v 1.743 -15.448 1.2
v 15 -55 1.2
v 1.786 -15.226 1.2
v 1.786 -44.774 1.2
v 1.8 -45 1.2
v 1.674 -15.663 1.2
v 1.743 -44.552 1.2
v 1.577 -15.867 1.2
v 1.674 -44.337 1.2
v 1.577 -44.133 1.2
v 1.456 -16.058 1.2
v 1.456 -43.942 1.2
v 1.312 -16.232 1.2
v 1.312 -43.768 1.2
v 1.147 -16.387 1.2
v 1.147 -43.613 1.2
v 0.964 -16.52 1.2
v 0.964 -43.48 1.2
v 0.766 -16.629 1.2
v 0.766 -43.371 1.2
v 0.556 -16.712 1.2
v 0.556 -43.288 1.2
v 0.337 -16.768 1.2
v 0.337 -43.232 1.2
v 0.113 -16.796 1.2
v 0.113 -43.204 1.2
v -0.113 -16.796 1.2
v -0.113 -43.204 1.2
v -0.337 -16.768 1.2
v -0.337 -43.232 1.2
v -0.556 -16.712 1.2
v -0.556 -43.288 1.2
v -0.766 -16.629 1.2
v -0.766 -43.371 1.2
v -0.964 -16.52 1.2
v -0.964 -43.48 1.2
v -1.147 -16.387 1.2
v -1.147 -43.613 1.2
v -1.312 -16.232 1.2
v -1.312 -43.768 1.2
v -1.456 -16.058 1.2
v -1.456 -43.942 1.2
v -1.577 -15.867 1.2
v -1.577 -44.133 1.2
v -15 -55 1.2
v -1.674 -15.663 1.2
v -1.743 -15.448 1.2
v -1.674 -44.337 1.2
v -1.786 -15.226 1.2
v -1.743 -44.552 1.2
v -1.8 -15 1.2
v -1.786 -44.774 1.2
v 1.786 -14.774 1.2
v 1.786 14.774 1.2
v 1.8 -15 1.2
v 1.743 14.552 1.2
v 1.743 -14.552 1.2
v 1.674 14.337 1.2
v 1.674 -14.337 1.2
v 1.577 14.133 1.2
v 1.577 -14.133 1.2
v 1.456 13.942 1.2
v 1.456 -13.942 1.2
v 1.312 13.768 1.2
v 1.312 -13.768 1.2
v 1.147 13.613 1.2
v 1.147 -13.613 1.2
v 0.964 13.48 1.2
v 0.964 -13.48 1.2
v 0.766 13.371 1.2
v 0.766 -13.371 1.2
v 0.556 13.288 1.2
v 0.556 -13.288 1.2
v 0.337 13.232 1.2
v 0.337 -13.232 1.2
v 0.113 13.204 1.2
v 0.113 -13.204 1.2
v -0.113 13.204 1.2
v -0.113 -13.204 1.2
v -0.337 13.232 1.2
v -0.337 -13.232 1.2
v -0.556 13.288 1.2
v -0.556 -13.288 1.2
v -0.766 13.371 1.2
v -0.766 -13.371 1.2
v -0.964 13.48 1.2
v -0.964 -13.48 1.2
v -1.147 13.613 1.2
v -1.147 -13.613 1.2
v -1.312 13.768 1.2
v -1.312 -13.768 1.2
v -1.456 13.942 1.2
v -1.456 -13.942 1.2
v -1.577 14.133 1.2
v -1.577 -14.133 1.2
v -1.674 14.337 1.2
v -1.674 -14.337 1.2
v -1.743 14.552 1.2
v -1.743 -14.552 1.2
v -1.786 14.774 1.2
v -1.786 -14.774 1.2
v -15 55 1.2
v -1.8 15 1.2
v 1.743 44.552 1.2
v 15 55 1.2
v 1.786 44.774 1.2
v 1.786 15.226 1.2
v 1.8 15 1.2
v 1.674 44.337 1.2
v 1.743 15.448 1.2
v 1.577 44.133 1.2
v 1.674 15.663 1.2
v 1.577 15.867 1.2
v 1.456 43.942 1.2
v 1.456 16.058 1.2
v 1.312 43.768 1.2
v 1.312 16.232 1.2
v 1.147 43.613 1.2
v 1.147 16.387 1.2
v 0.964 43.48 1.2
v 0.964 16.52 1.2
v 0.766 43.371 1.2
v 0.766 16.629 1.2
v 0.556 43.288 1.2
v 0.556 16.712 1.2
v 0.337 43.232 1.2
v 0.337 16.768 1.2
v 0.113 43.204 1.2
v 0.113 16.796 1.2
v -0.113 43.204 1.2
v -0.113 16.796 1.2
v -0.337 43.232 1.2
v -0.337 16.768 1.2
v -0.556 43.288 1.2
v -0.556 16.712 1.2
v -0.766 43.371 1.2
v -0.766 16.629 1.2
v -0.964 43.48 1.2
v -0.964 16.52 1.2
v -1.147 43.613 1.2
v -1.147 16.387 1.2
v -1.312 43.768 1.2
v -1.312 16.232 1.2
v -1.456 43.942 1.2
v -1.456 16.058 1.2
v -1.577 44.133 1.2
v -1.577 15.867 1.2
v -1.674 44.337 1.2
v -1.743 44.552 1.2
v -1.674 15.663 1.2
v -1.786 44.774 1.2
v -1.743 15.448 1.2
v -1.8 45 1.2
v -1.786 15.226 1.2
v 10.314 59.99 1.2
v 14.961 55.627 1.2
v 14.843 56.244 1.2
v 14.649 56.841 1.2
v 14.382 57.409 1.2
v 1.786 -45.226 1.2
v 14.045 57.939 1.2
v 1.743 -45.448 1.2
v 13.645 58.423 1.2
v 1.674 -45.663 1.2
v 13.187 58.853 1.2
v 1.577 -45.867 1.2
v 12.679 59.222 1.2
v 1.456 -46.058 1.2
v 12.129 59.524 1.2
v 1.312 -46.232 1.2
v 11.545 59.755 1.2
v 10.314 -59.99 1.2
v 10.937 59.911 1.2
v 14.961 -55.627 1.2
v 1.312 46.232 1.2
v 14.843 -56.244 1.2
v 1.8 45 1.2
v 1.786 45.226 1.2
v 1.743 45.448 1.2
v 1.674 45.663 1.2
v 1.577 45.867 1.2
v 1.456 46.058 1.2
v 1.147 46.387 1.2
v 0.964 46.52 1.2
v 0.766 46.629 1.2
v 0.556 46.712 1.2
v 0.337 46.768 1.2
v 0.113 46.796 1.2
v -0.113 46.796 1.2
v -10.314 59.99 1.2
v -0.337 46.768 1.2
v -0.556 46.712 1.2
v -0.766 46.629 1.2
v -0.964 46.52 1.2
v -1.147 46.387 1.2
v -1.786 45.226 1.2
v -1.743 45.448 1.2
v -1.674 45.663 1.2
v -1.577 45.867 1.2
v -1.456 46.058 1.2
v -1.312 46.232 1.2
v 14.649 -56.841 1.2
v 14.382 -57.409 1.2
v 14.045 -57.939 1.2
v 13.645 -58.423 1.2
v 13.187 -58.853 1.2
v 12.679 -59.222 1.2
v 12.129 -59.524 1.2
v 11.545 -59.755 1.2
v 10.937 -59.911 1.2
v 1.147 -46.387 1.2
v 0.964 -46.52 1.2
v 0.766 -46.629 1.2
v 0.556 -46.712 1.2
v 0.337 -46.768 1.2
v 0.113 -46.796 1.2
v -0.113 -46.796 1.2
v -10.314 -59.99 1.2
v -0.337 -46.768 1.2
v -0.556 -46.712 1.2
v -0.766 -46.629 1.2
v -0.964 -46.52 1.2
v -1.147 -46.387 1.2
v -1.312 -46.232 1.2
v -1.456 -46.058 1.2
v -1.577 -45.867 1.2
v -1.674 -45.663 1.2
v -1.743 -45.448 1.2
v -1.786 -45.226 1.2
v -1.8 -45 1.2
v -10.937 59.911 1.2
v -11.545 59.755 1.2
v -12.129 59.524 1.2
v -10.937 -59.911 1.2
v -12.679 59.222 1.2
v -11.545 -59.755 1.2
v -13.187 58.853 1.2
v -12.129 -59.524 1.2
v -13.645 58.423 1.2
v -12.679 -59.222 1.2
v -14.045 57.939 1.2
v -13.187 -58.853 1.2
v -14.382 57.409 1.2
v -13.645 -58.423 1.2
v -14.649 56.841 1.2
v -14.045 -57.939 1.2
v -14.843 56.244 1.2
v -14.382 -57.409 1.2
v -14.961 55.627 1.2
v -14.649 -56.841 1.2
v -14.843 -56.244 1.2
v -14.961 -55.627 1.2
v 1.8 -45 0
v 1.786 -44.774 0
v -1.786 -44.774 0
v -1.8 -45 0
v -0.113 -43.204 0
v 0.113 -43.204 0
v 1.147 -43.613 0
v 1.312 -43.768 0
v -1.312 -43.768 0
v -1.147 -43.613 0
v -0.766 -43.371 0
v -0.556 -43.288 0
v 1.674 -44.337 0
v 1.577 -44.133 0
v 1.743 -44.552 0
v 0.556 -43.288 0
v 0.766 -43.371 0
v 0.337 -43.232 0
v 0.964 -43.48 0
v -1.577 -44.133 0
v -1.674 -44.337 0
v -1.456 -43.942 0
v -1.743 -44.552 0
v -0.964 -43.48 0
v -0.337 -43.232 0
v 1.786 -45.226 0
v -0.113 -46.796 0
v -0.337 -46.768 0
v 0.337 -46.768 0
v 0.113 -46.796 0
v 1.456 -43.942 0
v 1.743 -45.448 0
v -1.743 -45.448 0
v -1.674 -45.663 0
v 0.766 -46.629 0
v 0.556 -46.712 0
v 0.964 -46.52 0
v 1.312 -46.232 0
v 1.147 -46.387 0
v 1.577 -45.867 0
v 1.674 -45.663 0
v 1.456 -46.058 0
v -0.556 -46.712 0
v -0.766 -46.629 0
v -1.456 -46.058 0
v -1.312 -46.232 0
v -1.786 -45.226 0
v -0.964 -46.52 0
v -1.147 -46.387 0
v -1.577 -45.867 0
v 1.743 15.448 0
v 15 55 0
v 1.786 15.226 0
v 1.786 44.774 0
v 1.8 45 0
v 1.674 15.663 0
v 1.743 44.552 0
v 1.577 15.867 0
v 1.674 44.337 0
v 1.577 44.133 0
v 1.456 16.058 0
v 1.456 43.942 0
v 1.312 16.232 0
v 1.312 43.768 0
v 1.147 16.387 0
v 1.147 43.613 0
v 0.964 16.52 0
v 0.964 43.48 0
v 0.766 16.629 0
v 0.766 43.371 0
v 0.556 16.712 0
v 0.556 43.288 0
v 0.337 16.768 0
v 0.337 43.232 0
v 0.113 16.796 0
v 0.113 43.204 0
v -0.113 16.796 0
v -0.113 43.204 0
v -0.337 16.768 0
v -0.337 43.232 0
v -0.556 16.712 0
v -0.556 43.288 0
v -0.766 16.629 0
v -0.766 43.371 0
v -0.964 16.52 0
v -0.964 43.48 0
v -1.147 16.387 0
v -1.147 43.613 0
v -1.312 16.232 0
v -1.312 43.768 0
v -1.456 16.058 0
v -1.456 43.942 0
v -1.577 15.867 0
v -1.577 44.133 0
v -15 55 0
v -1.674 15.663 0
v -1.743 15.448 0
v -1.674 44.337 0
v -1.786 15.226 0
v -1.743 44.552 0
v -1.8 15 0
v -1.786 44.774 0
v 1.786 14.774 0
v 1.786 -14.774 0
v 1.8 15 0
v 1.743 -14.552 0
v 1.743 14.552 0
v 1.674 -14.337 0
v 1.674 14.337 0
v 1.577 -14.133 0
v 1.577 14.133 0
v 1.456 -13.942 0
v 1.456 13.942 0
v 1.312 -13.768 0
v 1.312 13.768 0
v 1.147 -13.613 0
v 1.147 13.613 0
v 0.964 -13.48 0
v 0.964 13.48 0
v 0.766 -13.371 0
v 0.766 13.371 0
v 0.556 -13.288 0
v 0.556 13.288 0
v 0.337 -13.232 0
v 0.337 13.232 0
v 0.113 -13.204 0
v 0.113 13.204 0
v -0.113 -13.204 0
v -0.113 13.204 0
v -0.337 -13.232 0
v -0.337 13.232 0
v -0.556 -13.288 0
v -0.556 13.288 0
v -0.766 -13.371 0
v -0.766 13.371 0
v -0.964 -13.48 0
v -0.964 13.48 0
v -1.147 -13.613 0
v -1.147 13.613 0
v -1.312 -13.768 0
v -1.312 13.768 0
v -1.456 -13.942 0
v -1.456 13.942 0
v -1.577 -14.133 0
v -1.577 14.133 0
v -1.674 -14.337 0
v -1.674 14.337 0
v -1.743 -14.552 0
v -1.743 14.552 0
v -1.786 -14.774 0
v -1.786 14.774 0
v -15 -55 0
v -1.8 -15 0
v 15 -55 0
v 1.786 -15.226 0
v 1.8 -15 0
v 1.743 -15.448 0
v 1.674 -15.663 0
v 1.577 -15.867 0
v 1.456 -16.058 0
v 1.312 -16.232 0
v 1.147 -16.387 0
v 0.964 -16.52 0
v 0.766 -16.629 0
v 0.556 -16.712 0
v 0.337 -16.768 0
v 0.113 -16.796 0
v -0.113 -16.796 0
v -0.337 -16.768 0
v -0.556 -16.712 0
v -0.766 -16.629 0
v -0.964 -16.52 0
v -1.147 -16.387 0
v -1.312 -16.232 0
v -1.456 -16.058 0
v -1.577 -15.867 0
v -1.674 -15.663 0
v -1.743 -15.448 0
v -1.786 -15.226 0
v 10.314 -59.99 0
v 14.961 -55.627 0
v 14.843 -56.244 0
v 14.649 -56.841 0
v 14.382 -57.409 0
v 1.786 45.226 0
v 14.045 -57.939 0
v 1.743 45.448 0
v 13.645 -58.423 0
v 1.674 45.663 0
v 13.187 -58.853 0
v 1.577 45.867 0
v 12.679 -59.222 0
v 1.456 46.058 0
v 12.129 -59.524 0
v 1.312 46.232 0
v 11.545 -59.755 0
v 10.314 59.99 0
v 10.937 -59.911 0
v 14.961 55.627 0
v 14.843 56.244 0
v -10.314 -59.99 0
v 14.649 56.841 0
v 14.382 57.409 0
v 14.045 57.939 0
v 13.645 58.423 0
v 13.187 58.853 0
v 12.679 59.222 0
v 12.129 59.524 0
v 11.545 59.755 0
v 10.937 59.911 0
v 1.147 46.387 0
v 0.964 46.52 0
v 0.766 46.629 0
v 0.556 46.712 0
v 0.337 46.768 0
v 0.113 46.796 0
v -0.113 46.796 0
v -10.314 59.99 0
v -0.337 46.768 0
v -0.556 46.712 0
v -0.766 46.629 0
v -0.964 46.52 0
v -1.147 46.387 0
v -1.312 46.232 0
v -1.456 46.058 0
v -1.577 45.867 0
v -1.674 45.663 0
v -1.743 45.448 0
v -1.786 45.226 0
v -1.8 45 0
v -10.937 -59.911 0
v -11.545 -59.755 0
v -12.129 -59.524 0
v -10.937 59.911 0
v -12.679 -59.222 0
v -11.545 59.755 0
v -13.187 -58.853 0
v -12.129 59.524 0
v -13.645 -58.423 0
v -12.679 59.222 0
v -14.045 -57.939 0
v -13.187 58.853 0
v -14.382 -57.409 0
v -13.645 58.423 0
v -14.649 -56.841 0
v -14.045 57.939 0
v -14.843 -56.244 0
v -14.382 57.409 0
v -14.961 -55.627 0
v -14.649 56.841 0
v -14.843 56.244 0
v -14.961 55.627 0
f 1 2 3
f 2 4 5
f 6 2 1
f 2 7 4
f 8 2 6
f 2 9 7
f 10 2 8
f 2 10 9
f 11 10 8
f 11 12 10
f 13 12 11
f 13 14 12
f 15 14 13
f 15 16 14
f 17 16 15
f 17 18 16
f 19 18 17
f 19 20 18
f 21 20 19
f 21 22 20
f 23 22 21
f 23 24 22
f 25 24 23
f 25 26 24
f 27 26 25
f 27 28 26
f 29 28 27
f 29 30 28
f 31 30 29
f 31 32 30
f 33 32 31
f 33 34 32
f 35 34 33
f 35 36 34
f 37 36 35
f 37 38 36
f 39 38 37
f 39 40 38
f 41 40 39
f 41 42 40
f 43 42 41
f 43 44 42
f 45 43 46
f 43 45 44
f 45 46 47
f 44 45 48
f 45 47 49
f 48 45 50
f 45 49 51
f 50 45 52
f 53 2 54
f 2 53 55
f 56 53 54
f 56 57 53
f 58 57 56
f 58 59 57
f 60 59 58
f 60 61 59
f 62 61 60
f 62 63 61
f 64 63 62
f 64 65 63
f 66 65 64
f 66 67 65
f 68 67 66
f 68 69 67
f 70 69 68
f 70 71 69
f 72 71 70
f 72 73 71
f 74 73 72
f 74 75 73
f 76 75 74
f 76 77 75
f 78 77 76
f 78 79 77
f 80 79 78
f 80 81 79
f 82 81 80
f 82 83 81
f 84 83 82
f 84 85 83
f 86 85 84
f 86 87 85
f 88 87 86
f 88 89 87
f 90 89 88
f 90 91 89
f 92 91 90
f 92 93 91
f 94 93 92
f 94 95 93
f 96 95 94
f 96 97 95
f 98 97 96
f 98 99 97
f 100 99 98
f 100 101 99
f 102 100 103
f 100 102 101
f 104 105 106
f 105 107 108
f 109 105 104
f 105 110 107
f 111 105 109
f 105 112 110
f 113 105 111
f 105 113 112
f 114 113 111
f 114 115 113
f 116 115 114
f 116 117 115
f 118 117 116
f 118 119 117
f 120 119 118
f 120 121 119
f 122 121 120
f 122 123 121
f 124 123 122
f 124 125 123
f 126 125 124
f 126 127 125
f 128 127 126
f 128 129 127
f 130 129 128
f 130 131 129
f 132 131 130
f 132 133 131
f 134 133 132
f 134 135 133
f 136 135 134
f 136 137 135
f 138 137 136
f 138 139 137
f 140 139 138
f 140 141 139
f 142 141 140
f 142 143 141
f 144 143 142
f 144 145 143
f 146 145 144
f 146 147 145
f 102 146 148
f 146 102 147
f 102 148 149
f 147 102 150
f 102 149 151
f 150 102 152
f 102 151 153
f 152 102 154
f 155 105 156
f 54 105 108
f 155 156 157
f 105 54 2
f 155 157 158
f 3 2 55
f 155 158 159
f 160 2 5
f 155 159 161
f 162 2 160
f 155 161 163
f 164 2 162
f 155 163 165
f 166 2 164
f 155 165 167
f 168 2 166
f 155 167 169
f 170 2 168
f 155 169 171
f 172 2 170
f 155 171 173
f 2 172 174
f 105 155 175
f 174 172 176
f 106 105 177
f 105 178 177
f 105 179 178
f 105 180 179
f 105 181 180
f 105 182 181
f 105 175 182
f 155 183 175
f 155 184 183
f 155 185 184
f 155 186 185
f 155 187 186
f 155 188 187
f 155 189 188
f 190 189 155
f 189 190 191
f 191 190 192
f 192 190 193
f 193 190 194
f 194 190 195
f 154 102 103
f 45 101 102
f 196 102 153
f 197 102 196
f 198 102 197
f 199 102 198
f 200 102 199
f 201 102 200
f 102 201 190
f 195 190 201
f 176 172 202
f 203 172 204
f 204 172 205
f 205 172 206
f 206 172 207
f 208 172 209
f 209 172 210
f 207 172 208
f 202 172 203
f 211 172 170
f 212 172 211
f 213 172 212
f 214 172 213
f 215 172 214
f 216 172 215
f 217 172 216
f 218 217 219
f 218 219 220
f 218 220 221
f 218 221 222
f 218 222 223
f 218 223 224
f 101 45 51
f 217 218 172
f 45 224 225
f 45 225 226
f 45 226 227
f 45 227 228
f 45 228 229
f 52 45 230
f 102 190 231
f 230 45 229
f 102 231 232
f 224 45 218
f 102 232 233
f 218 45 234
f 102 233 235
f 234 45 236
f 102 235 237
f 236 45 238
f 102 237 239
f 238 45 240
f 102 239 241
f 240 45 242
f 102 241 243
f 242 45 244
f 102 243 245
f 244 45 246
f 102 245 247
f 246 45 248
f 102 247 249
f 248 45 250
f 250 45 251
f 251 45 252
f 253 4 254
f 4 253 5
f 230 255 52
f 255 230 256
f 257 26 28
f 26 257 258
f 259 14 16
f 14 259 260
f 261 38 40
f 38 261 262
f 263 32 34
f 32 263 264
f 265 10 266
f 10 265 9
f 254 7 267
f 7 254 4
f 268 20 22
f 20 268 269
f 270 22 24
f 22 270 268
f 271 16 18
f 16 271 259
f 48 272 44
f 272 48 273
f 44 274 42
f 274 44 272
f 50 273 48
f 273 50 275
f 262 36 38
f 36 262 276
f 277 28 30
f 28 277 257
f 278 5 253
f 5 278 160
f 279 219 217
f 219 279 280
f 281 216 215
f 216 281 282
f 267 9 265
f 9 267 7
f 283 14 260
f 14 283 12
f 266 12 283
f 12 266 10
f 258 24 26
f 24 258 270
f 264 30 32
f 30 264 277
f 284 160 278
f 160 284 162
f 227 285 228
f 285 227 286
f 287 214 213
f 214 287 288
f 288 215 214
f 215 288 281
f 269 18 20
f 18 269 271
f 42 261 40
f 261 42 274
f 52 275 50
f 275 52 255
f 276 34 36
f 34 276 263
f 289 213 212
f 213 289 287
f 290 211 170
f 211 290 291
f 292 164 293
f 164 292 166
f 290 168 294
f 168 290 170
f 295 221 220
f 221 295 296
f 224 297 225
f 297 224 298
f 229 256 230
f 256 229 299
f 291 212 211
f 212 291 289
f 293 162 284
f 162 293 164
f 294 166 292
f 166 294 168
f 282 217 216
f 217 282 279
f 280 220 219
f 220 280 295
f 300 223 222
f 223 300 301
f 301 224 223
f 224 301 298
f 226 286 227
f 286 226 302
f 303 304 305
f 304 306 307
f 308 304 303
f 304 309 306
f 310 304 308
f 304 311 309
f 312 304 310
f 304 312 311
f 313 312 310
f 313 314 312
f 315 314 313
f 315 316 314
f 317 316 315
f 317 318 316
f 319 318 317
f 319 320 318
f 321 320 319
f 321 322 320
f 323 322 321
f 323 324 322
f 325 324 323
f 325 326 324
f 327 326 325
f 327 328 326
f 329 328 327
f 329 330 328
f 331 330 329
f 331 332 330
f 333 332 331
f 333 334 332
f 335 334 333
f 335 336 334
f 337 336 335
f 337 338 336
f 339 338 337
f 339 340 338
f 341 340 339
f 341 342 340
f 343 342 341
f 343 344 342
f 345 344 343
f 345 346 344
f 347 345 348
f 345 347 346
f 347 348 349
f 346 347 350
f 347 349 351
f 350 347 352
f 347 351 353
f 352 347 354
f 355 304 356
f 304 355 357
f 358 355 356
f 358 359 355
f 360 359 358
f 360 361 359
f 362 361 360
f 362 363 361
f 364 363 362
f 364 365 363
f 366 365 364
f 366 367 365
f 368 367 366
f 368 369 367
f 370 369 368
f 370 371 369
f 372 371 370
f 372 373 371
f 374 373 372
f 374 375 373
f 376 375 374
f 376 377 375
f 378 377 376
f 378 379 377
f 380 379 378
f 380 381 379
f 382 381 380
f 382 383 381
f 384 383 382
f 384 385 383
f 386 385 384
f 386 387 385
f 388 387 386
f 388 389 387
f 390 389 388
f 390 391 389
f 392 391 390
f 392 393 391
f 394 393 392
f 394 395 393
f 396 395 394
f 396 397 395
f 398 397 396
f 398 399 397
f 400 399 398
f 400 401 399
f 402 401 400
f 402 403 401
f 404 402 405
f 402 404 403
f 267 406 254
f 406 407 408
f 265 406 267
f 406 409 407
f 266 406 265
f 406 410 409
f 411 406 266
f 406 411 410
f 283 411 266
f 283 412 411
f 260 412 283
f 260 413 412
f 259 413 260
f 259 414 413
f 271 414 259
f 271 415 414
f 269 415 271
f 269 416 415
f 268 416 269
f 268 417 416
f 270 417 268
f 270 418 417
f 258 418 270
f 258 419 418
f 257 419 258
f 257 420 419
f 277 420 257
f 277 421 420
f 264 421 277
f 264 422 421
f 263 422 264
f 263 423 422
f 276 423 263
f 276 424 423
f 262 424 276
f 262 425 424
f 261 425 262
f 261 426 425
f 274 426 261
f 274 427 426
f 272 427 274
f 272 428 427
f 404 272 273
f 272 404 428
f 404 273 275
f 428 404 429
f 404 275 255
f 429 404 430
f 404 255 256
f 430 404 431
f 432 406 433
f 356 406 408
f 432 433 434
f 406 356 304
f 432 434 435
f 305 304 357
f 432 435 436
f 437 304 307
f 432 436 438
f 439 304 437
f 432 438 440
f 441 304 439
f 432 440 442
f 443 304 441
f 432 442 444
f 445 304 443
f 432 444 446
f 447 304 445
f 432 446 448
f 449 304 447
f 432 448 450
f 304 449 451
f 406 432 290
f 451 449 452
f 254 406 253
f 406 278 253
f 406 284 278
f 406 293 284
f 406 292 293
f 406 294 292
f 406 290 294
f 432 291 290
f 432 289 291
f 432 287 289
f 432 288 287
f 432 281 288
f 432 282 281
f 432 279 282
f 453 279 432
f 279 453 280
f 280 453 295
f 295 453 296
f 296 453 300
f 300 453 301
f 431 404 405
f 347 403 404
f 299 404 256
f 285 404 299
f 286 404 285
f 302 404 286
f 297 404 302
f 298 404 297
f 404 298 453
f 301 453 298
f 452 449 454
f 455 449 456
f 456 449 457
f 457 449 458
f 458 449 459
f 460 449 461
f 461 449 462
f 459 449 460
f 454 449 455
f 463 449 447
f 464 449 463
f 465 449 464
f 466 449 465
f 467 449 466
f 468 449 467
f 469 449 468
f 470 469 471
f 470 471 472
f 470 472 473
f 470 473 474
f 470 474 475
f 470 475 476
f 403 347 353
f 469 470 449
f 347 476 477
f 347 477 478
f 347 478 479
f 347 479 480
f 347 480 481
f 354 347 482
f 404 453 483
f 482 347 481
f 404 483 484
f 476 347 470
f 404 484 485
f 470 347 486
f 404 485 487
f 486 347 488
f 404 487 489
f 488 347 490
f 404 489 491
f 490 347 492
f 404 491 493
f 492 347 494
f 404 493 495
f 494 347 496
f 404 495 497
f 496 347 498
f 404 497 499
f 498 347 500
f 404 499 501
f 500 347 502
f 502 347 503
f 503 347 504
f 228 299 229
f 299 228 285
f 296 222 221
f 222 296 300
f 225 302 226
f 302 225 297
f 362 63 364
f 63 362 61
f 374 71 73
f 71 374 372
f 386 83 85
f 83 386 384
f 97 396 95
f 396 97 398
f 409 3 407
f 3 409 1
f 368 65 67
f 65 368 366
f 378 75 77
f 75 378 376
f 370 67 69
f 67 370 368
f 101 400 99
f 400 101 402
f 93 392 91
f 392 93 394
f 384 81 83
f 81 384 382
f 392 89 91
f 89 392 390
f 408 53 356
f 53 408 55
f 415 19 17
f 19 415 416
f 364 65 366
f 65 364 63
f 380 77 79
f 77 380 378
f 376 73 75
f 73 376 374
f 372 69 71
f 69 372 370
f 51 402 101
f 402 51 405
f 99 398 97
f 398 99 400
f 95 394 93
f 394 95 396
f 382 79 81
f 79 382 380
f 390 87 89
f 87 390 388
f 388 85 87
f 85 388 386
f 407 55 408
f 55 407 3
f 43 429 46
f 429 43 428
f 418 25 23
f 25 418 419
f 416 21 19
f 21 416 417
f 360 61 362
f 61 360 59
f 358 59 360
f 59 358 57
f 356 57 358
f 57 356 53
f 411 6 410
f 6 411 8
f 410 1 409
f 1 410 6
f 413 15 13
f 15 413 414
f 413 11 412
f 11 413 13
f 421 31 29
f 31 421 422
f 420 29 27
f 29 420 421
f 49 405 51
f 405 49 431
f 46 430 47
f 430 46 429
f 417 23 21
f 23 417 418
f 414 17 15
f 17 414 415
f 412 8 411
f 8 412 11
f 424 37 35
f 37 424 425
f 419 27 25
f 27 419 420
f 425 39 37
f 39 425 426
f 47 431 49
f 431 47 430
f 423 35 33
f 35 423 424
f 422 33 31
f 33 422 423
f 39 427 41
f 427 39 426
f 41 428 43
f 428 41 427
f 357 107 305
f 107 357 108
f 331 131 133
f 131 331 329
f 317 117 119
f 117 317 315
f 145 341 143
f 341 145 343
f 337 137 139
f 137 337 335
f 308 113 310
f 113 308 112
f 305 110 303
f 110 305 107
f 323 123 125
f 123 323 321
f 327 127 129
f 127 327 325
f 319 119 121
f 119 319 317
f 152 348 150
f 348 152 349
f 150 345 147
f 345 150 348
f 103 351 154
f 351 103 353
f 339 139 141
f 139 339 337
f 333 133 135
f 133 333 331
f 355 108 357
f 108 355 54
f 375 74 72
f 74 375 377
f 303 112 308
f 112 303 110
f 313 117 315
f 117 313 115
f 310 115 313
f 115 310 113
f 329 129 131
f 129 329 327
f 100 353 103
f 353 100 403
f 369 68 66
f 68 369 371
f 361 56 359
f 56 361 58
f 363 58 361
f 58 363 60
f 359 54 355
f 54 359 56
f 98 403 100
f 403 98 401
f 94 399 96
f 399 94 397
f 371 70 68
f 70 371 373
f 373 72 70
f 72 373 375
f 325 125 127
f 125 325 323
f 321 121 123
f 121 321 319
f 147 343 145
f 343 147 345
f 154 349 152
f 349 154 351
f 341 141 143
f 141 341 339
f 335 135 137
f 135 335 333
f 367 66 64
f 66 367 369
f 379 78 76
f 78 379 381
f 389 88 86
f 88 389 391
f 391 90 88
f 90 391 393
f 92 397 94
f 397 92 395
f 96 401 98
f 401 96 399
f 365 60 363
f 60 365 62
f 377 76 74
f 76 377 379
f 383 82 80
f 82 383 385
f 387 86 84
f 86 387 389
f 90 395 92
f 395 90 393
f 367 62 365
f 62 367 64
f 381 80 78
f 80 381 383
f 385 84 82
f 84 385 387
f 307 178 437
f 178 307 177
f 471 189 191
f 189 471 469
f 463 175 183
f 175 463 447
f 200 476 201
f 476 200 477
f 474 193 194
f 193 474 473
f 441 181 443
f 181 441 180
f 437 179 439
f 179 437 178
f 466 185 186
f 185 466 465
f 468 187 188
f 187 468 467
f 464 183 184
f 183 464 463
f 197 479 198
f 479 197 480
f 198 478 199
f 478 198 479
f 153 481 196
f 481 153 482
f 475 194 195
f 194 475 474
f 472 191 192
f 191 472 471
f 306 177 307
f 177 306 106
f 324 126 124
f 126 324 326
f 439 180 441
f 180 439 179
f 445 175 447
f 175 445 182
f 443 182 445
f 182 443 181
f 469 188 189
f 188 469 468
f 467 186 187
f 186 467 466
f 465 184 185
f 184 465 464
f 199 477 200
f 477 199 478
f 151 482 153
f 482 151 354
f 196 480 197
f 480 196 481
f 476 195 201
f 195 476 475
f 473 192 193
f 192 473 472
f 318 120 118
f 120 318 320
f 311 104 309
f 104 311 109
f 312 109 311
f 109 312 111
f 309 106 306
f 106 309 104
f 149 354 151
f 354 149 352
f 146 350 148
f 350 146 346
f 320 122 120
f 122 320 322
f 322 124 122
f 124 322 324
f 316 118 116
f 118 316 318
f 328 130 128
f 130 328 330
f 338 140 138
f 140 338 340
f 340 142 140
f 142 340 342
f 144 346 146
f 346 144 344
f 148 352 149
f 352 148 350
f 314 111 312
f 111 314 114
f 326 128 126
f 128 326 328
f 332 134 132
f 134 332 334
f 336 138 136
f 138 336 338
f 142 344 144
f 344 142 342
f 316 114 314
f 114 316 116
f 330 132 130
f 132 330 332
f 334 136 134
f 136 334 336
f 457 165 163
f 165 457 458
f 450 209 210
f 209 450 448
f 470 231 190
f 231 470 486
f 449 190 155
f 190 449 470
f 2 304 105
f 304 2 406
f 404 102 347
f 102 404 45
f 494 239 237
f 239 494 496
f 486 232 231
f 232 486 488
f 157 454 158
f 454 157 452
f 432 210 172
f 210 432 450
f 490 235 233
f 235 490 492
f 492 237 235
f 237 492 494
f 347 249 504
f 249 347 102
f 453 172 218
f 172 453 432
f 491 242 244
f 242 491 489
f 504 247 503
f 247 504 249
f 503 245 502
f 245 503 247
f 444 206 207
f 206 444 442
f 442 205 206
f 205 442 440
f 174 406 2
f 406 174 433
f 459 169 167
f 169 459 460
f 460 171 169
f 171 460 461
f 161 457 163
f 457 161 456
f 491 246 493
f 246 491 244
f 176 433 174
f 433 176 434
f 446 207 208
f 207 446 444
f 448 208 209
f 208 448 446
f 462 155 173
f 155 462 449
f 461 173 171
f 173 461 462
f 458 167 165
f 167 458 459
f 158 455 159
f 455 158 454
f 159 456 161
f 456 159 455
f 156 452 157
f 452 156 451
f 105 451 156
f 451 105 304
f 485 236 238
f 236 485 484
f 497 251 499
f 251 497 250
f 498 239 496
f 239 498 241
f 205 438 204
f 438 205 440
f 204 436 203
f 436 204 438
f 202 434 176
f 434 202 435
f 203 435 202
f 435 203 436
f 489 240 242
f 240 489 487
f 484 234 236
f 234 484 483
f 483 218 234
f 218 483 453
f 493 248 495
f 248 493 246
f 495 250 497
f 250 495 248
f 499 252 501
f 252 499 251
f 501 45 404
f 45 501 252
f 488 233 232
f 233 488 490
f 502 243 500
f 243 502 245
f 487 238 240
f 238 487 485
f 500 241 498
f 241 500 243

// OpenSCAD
$fn = 50;


difference() {
	union() {
		hull() {
			translate(v = [-10.0000000000, 55.0000000000, 0]) {
				cylinder(h = 12, r = 5);
			}
			translate(v = [10.0000000000, 55.0000000000, 0]) {
				cylinder(h = 12, r = 5);
			}
			translate(v = [-10.0000000000, -55.0000000000, 0]) {
				cylinder(h = 12, r = 5);
			}
			translate(v = [10.0000000000, -55.0000000000, 0]) {
				cylinder(h = 12, r = 5);
			}
		}
	}
	union() {
		translate(v = [0, 0, 1.2000000000]) {
			hull() {
				translate(v = [-10.0000000000, 55.0000000000, 0]) {
					cylinder(h = 10.8000000000, r = 3.8000000000);
				}
				translate(v = [10.0000000000, 55.0000000000, 0]) {
					cylinder(h = 10.8000000000, r = 3.8000000000);
				}
				translate(v = [-10.0000000000, -55.0000000000, 0]) {
					cylinder(h = 10.8000000000, r = 3.8000000000);
				}
				translate(v = [10.0000000000, -55.0000000000, 0]) {
					cylinder(h = 10.8000000000, r = 3.8000000000);
				}
			}
		}
		#translate(v = [0.0000000000, -45.0000000000, 0]) {
			cylinder(h = 1.2000000000, r = 1.8000000000);
		}
		#translate(v = [0.0000000000, -15.0000000000, 0]) {
			cylinder(h = 1.2000000000, r = 1.8000000000);
		}
		#translate(v = [0.0000000000, 15.0000000000, 0]) {
			cylinder(h = 1.2000000000, r = 1.8000000000);
		}
		#translate(v = [0.0000000000, 45.0000000000, 0]) {
			cylinder(h = 1.2000000000, r = 1.8000000000);
		}
		translate(v = [-250.0000000000, -250.0000000000, 1.2000000000]) {
			cube(size = [500, 500, 500]);
		}
		translate(v = [-250.0000000000, -250.0000000000, 1.2000000000]) {
			cube(size = [500, 500, 500]);
		}
		translate(v = [-250.0000000000, -250.0000000000, 1.2000000000]) {
			cube(size = [500, 500, 500]);
		}
	}
}
